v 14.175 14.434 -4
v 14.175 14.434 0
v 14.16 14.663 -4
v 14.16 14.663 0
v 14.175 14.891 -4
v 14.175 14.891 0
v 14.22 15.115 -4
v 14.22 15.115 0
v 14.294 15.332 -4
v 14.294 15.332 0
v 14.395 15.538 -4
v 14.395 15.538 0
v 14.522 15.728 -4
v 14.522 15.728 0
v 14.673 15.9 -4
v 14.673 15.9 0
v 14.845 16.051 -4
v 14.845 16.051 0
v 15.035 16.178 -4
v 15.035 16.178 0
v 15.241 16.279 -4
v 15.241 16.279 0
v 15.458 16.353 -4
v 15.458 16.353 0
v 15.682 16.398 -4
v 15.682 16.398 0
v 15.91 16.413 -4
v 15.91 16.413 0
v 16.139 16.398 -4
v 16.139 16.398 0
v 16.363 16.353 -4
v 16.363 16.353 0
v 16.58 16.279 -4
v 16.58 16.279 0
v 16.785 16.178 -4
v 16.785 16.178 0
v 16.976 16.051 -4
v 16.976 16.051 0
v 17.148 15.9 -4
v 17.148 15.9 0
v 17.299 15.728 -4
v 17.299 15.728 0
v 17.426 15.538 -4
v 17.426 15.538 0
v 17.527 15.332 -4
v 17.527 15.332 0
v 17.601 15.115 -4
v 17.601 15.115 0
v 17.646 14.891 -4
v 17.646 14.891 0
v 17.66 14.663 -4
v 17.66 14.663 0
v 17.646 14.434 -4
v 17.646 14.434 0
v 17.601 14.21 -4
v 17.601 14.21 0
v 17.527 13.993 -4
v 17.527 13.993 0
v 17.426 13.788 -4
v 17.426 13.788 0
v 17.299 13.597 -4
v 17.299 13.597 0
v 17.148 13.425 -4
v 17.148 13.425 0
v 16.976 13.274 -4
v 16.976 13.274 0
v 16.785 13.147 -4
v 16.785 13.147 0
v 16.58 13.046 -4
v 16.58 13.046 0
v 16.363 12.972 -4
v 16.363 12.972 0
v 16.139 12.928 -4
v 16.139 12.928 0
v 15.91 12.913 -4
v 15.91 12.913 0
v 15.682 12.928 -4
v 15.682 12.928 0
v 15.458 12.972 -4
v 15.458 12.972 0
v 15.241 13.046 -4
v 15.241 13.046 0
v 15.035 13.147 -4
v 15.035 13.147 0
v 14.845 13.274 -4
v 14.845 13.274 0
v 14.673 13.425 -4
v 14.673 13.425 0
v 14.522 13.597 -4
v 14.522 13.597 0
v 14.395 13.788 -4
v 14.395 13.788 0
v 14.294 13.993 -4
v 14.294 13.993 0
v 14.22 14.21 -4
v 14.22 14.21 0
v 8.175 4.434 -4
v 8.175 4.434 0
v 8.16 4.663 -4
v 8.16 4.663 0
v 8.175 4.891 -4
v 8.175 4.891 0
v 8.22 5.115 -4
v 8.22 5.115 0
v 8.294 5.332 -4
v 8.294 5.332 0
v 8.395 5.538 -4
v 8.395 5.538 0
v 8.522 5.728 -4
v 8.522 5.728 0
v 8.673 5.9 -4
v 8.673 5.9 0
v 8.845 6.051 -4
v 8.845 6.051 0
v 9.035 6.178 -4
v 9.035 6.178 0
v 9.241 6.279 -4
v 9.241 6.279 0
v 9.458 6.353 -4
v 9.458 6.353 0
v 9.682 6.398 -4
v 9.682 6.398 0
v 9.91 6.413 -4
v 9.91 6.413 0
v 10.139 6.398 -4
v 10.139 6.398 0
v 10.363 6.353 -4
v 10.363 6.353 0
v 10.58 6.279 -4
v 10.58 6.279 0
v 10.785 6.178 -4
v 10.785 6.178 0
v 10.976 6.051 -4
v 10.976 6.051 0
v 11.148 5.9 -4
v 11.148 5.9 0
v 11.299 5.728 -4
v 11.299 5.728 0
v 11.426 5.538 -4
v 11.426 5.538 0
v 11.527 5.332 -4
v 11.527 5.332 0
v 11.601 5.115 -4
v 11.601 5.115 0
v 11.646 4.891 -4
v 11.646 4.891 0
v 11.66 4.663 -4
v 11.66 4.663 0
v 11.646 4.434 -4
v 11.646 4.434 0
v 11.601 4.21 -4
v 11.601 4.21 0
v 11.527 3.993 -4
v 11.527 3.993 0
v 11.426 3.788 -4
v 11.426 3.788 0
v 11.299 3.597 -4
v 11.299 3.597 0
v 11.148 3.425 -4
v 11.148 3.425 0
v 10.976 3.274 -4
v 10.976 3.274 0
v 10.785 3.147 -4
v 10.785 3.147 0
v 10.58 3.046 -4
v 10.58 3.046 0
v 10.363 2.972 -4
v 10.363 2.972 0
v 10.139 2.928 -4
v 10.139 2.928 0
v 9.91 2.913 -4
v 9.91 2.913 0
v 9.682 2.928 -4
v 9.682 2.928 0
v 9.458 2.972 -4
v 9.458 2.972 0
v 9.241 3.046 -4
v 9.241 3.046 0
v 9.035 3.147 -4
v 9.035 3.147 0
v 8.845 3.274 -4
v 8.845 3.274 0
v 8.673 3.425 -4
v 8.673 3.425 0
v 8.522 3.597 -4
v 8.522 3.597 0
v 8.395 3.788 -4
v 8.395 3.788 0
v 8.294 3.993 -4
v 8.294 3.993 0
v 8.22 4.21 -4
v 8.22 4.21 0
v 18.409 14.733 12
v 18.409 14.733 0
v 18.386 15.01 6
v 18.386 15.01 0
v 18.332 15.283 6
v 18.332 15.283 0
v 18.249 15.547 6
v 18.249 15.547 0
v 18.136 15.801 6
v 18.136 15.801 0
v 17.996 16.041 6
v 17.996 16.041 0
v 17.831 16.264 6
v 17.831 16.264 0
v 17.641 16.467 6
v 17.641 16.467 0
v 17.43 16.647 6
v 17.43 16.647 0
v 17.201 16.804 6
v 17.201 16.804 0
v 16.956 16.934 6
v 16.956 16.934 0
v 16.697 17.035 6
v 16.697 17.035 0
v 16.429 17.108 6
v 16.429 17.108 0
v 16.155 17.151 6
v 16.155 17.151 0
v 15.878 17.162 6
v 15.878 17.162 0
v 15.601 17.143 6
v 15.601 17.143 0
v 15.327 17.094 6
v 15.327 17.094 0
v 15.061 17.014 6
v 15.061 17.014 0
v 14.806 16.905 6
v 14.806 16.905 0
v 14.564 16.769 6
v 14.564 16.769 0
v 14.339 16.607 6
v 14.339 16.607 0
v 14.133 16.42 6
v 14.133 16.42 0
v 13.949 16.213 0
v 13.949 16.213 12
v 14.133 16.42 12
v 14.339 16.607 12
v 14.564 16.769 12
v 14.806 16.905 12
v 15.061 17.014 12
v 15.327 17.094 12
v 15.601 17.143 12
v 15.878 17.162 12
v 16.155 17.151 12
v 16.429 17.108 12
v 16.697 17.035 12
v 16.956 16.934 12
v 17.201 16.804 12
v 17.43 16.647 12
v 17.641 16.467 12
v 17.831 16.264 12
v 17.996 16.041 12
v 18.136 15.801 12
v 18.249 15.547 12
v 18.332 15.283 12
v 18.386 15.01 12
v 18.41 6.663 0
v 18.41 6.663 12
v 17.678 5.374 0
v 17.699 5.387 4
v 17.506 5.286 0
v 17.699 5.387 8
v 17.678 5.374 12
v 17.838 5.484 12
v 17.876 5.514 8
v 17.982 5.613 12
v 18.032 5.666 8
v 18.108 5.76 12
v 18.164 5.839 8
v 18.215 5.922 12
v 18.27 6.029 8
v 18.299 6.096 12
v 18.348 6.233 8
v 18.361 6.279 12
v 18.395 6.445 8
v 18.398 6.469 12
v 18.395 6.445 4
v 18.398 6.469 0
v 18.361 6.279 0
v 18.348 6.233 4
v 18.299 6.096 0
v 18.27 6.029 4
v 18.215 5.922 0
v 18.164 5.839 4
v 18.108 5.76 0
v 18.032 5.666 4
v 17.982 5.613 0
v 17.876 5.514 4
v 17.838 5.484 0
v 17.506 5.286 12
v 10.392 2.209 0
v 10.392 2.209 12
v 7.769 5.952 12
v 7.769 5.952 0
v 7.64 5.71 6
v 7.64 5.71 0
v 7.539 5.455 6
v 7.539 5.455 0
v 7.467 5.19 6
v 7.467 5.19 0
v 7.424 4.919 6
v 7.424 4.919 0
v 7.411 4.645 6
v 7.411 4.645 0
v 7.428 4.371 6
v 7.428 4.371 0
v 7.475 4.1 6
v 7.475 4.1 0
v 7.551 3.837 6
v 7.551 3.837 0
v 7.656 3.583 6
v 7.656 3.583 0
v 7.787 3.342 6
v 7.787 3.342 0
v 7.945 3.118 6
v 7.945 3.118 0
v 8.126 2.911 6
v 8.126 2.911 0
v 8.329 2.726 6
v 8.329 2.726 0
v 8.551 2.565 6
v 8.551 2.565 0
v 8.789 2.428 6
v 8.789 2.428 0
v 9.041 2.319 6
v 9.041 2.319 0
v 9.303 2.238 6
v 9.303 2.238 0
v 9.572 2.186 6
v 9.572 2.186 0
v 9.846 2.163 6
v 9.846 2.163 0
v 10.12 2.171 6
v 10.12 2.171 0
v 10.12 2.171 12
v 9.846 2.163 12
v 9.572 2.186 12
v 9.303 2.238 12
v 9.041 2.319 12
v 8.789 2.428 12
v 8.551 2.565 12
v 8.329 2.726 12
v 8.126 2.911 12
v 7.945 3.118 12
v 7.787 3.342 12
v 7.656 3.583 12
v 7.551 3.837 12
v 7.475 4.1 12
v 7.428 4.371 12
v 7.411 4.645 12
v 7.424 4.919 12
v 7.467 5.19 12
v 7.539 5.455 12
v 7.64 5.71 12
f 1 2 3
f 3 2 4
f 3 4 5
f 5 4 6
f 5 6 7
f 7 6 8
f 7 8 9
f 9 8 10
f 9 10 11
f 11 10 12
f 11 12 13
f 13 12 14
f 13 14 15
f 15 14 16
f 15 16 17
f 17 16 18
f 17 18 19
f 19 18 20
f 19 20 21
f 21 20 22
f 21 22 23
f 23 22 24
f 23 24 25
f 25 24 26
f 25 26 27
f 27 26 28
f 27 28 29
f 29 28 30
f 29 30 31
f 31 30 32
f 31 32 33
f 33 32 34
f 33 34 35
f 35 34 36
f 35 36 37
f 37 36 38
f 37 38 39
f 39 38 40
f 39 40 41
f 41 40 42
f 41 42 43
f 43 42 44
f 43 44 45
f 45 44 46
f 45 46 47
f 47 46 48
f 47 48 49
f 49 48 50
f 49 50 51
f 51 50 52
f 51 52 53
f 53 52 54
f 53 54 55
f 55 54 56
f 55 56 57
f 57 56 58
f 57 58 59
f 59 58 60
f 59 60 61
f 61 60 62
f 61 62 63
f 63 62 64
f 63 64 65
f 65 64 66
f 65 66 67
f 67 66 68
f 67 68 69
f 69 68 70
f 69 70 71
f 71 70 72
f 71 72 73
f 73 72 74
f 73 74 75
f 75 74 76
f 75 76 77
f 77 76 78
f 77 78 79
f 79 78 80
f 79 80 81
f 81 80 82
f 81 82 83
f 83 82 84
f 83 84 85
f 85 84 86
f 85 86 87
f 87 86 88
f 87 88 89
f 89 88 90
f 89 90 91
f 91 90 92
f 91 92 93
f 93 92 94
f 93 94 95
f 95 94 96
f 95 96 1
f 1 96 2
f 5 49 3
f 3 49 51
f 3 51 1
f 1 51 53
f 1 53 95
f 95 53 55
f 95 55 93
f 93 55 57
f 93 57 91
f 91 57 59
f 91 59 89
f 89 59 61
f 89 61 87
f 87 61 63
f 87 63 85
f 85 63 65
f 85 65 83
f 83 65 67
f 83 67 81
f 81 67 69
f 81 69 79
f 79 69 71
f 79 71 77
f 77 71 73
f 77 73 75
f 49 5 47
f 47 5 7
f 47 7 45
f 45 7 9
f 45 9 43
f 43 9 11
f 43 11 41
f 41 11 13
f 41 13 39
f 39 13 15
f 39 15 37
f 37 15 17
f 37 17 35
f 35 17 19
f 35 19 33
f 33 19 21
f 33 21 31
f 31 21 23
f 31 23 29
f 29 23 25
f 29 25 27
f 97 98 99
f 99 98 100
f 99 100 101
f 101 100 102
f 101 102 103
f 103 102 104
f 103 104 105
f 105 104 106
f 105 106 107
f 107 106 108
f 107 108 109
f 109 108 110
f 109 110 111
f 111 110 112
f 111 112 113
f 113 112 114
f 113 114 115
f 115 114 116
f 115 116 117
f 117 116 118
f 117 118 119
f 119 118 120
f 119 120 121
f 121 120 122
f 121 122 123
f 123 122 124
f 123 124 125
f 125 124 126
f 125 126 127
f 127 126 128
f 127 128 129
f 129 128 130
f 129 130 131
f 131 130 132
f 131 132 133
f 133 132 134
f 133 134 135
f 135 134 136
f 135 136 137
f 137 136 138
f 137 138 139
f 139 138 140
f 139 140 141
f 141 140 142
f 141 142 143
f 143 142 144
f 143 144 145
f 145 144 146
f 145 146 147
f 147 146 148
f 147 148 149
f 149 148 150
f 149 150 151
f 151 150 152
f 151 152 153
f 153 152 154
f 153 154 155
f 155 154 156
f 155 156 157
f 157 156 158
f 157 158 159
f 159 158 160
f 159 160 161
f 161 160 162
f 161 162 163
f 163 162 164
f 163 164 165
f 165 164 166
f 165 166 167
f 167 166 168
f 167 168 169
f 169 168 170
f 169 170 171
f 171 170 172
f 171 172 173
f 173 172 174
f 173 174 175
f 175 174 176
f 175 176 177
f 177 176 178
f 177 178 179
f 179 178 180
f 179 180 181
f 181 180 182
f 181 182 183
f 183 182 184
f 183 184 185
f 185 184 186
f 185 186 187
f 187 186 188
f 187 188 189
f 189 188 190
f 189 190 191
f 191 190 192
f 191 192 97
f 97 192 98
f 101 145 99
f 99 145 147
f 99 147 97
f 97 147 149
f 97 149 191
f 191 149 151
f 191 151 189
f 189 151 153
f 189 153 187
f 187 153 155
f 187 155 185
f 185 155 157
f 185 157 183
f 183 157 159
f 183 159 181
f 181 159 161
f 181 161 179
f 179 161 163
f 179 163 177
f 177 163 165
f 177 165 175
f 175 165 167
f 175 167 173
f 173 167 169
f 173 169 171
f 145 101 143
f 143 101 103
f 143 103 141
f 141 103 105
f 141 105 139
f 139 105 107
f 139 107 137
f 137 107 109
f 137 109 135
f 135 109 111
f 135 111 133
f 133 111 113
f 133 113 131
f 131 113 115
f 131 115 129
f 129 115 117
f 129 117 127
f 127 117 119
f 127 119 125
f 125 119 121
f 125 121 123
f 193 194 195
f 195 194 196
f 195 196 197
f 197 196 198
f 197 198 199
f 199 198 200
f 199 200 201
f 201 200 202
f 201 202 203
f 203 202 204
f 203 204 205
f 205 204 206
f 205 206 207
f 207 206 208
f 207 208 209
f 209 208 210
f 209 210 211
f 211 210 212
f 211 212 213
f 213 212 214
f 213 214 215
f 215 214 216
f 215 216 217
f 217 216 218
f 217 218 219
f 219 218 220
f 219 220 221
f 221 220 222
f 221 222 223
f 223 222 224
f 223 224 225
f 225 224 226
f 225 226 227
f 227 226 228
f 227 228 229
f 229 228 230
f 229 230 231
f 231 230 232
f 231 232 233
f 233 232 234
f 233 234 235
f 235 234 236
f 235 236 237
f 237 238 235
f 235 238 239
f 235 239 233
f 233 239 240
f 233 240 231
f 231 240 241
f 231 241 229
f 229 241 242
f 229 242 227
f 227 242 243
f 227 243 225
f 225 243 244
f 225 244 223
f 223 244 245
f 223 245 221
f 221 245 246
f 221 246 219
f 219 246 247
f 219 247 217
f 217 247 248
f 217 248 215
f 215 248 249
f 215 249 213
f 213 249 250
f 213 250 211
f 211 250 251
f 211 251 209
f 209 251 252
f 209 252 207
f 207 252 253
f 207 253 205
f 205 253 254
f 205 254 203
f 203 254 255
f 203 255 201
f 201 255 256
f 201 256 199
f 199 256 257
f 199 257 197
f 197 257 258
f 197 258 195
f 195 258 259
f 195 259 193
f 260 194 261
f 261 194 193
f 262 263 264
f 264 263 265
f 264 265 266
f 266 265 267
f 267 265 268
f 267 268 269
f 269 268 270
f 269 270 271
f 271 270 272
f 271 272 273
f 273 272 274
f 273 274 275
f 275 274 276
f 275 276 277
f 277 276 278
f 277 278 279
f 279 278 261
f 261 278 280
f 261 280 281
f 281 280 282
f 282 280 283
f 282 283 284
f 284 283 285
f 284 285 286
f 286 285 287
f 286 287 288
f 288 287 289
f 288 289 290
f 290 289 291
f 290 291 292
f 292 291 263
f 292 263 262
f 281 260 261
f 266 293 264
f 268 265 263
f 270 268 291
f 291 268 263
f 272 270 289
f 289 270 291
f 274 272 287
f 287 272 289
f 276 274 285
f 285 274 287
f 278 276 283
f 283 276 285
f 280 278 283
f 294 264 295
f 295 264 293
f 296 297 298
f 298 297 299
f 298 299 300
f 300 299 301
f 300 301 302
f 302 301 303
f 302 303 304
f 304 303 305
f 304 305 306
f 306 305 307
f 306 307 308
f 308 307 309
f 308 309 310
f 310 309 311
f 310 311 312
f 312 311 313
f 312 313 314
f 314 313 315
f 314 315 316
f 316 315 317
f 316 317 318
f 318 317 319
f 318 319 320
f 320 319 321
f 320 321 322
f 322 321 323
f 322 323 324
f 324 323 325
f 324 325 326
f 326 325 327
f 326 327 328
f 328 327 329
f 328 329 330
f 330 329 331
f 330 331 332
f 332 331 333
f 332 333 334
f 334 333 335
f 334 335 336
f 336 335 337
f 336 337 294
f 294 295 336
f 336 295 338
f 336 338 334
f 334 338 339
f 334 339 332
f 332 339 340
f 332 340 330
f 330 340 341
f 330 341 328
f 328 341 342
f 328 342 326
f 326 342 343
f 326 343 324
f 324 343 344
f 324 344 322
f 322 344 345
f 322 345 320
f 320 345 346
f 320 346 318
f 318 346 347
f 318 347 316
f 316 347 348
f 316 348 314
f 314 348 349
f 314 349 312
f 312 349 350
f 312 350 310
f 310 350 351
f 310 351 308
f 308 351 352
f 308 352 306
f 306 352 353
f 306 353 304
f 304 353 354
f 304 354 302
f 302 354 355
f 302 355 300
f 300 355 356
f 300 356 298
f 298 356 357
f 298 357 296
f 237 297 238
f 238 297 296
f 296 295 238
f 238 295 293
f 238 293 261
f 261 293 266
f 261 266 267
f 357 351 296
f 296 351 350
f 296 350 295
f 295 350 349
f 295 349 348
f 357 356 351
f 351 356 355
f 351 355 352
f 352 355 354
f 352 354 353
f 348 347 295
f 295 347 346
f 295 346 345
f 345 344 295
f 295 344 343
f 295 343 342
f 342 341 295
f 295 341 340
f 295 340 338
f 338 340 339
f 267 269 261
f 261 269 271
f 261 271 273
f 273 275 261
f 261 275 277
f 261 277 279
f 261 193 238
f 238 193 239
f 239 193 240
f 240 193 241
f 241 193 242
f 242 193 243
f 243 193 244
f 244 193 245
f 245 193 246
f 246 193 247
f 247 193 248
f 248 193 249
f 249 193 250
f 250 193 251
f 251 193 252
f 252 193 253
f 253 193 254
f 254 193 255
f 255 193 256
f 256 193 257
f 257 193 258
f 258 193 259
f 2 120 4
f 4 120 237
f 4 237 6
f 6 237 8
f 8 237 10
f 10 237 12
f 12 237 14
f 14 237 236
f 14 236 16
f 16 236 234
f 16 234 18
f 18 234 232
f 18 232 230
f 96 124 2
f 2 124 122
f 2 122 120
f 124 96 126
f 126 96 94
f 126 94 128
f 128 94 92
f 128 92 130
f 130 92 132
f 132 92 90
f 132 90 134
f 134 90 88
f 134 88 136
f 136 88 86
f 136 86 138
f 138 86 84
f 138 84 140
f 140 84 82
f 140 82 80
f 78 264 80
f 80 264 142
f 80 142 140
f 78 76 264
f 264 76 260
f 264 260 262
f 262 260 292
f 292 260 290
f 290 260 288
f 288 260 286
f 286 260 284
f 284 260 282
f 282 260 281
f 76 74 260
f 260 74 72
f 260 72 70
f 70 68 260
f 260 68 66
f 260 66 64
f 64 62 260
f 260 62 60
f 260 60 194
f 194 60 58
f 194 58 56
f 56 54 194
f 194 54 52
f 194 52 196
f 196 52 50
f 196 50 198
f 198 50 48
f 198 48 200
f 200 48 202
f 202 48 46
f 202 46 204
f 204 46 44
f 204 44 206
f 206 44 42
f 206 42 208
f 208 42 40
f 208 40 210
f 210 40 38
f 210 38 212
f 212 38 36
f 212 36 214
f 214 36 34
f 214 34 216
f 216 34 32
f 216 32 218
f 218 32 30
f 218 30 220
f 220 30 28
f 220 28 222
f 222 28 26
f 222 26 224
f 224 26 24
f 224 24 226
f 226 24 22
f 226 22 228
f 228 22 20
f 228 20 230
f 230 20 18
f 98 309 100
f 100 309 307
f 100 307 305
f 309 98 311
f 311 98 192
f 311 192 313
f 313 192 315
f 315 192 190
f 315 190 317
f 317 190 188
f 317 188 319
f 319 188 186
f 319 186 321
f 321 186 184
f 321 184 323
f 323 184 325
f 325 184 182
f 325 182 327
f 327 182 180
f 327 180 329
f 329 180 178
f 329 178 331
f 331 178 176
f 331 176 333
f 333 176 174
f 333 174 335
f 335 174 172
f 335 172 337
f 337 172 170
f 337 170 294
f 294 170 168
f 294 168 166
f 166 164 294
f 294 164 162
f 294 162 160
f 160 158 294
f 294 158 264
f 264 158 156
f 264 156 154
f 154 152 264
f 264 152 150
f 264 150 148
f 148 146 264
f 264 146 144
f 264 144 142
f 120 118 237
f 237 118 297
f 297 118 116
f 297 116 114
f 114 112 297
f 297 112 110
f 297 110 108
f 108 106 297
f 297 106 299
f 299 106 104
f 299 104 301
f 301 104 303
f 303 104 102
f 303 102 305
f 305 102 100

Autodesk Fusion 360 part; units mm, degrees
sketch "Sketch1" plane through (0, 0, 0) normal (0, 0, 1) x (1, 0, 0)
  line L0 (10.392, 2.2094) -> (17.5059, 5.2858)
  line L1 (13.949, 16.2125) -> (7.769, 5.9525)
  line L2 (18.4095, 14.7335) -> (18.4105, 6.6627)
  arc A0 (7.769, 5.9525) -> (11.3682, 2.6315) centre (9.9105, 4.6625) ccw
  circle A1 centre (9.9105, 4.6625) radius 1.75
  circle A2 centre (15.9105, 14.6625) radius 1.75
  arc A3 (17.5059, 5.2858) -> (18.4105, 6.6627) centre (16.9105, 6.6625) ccw
  arc A4 (18.4095, 14.5922) -> (13.6233, 15.6718) centre (15.9105, 14.6625) ccw
  dimension "d1" = 5
  dimension "d2" = 5
  dimension "d3" = 3
  dimension "d4" = 3.5
  dimension "d5" = 3.5
  dimension "d6" = 9.9105
  dimension "d7" = 4.6625
  dimension "d8" = 7.1139
  dimension "d9" = 3.0764
  dimension "d10" = 11.3682
  dimension "d11" = 8.0707
  dimension "d12" = 5.9525
  dimension "d13" = 16.2125
  dimension "d14" = 6.6627
extrude "Extrude1" add sketch "Sketch1" along normal blind 12 contours L0 L1 L2 A0 A3 A4
extrude "Extrude2" add sketch "Sketch1" along normal blind 16 from surface at -4 contours A1 | A2
